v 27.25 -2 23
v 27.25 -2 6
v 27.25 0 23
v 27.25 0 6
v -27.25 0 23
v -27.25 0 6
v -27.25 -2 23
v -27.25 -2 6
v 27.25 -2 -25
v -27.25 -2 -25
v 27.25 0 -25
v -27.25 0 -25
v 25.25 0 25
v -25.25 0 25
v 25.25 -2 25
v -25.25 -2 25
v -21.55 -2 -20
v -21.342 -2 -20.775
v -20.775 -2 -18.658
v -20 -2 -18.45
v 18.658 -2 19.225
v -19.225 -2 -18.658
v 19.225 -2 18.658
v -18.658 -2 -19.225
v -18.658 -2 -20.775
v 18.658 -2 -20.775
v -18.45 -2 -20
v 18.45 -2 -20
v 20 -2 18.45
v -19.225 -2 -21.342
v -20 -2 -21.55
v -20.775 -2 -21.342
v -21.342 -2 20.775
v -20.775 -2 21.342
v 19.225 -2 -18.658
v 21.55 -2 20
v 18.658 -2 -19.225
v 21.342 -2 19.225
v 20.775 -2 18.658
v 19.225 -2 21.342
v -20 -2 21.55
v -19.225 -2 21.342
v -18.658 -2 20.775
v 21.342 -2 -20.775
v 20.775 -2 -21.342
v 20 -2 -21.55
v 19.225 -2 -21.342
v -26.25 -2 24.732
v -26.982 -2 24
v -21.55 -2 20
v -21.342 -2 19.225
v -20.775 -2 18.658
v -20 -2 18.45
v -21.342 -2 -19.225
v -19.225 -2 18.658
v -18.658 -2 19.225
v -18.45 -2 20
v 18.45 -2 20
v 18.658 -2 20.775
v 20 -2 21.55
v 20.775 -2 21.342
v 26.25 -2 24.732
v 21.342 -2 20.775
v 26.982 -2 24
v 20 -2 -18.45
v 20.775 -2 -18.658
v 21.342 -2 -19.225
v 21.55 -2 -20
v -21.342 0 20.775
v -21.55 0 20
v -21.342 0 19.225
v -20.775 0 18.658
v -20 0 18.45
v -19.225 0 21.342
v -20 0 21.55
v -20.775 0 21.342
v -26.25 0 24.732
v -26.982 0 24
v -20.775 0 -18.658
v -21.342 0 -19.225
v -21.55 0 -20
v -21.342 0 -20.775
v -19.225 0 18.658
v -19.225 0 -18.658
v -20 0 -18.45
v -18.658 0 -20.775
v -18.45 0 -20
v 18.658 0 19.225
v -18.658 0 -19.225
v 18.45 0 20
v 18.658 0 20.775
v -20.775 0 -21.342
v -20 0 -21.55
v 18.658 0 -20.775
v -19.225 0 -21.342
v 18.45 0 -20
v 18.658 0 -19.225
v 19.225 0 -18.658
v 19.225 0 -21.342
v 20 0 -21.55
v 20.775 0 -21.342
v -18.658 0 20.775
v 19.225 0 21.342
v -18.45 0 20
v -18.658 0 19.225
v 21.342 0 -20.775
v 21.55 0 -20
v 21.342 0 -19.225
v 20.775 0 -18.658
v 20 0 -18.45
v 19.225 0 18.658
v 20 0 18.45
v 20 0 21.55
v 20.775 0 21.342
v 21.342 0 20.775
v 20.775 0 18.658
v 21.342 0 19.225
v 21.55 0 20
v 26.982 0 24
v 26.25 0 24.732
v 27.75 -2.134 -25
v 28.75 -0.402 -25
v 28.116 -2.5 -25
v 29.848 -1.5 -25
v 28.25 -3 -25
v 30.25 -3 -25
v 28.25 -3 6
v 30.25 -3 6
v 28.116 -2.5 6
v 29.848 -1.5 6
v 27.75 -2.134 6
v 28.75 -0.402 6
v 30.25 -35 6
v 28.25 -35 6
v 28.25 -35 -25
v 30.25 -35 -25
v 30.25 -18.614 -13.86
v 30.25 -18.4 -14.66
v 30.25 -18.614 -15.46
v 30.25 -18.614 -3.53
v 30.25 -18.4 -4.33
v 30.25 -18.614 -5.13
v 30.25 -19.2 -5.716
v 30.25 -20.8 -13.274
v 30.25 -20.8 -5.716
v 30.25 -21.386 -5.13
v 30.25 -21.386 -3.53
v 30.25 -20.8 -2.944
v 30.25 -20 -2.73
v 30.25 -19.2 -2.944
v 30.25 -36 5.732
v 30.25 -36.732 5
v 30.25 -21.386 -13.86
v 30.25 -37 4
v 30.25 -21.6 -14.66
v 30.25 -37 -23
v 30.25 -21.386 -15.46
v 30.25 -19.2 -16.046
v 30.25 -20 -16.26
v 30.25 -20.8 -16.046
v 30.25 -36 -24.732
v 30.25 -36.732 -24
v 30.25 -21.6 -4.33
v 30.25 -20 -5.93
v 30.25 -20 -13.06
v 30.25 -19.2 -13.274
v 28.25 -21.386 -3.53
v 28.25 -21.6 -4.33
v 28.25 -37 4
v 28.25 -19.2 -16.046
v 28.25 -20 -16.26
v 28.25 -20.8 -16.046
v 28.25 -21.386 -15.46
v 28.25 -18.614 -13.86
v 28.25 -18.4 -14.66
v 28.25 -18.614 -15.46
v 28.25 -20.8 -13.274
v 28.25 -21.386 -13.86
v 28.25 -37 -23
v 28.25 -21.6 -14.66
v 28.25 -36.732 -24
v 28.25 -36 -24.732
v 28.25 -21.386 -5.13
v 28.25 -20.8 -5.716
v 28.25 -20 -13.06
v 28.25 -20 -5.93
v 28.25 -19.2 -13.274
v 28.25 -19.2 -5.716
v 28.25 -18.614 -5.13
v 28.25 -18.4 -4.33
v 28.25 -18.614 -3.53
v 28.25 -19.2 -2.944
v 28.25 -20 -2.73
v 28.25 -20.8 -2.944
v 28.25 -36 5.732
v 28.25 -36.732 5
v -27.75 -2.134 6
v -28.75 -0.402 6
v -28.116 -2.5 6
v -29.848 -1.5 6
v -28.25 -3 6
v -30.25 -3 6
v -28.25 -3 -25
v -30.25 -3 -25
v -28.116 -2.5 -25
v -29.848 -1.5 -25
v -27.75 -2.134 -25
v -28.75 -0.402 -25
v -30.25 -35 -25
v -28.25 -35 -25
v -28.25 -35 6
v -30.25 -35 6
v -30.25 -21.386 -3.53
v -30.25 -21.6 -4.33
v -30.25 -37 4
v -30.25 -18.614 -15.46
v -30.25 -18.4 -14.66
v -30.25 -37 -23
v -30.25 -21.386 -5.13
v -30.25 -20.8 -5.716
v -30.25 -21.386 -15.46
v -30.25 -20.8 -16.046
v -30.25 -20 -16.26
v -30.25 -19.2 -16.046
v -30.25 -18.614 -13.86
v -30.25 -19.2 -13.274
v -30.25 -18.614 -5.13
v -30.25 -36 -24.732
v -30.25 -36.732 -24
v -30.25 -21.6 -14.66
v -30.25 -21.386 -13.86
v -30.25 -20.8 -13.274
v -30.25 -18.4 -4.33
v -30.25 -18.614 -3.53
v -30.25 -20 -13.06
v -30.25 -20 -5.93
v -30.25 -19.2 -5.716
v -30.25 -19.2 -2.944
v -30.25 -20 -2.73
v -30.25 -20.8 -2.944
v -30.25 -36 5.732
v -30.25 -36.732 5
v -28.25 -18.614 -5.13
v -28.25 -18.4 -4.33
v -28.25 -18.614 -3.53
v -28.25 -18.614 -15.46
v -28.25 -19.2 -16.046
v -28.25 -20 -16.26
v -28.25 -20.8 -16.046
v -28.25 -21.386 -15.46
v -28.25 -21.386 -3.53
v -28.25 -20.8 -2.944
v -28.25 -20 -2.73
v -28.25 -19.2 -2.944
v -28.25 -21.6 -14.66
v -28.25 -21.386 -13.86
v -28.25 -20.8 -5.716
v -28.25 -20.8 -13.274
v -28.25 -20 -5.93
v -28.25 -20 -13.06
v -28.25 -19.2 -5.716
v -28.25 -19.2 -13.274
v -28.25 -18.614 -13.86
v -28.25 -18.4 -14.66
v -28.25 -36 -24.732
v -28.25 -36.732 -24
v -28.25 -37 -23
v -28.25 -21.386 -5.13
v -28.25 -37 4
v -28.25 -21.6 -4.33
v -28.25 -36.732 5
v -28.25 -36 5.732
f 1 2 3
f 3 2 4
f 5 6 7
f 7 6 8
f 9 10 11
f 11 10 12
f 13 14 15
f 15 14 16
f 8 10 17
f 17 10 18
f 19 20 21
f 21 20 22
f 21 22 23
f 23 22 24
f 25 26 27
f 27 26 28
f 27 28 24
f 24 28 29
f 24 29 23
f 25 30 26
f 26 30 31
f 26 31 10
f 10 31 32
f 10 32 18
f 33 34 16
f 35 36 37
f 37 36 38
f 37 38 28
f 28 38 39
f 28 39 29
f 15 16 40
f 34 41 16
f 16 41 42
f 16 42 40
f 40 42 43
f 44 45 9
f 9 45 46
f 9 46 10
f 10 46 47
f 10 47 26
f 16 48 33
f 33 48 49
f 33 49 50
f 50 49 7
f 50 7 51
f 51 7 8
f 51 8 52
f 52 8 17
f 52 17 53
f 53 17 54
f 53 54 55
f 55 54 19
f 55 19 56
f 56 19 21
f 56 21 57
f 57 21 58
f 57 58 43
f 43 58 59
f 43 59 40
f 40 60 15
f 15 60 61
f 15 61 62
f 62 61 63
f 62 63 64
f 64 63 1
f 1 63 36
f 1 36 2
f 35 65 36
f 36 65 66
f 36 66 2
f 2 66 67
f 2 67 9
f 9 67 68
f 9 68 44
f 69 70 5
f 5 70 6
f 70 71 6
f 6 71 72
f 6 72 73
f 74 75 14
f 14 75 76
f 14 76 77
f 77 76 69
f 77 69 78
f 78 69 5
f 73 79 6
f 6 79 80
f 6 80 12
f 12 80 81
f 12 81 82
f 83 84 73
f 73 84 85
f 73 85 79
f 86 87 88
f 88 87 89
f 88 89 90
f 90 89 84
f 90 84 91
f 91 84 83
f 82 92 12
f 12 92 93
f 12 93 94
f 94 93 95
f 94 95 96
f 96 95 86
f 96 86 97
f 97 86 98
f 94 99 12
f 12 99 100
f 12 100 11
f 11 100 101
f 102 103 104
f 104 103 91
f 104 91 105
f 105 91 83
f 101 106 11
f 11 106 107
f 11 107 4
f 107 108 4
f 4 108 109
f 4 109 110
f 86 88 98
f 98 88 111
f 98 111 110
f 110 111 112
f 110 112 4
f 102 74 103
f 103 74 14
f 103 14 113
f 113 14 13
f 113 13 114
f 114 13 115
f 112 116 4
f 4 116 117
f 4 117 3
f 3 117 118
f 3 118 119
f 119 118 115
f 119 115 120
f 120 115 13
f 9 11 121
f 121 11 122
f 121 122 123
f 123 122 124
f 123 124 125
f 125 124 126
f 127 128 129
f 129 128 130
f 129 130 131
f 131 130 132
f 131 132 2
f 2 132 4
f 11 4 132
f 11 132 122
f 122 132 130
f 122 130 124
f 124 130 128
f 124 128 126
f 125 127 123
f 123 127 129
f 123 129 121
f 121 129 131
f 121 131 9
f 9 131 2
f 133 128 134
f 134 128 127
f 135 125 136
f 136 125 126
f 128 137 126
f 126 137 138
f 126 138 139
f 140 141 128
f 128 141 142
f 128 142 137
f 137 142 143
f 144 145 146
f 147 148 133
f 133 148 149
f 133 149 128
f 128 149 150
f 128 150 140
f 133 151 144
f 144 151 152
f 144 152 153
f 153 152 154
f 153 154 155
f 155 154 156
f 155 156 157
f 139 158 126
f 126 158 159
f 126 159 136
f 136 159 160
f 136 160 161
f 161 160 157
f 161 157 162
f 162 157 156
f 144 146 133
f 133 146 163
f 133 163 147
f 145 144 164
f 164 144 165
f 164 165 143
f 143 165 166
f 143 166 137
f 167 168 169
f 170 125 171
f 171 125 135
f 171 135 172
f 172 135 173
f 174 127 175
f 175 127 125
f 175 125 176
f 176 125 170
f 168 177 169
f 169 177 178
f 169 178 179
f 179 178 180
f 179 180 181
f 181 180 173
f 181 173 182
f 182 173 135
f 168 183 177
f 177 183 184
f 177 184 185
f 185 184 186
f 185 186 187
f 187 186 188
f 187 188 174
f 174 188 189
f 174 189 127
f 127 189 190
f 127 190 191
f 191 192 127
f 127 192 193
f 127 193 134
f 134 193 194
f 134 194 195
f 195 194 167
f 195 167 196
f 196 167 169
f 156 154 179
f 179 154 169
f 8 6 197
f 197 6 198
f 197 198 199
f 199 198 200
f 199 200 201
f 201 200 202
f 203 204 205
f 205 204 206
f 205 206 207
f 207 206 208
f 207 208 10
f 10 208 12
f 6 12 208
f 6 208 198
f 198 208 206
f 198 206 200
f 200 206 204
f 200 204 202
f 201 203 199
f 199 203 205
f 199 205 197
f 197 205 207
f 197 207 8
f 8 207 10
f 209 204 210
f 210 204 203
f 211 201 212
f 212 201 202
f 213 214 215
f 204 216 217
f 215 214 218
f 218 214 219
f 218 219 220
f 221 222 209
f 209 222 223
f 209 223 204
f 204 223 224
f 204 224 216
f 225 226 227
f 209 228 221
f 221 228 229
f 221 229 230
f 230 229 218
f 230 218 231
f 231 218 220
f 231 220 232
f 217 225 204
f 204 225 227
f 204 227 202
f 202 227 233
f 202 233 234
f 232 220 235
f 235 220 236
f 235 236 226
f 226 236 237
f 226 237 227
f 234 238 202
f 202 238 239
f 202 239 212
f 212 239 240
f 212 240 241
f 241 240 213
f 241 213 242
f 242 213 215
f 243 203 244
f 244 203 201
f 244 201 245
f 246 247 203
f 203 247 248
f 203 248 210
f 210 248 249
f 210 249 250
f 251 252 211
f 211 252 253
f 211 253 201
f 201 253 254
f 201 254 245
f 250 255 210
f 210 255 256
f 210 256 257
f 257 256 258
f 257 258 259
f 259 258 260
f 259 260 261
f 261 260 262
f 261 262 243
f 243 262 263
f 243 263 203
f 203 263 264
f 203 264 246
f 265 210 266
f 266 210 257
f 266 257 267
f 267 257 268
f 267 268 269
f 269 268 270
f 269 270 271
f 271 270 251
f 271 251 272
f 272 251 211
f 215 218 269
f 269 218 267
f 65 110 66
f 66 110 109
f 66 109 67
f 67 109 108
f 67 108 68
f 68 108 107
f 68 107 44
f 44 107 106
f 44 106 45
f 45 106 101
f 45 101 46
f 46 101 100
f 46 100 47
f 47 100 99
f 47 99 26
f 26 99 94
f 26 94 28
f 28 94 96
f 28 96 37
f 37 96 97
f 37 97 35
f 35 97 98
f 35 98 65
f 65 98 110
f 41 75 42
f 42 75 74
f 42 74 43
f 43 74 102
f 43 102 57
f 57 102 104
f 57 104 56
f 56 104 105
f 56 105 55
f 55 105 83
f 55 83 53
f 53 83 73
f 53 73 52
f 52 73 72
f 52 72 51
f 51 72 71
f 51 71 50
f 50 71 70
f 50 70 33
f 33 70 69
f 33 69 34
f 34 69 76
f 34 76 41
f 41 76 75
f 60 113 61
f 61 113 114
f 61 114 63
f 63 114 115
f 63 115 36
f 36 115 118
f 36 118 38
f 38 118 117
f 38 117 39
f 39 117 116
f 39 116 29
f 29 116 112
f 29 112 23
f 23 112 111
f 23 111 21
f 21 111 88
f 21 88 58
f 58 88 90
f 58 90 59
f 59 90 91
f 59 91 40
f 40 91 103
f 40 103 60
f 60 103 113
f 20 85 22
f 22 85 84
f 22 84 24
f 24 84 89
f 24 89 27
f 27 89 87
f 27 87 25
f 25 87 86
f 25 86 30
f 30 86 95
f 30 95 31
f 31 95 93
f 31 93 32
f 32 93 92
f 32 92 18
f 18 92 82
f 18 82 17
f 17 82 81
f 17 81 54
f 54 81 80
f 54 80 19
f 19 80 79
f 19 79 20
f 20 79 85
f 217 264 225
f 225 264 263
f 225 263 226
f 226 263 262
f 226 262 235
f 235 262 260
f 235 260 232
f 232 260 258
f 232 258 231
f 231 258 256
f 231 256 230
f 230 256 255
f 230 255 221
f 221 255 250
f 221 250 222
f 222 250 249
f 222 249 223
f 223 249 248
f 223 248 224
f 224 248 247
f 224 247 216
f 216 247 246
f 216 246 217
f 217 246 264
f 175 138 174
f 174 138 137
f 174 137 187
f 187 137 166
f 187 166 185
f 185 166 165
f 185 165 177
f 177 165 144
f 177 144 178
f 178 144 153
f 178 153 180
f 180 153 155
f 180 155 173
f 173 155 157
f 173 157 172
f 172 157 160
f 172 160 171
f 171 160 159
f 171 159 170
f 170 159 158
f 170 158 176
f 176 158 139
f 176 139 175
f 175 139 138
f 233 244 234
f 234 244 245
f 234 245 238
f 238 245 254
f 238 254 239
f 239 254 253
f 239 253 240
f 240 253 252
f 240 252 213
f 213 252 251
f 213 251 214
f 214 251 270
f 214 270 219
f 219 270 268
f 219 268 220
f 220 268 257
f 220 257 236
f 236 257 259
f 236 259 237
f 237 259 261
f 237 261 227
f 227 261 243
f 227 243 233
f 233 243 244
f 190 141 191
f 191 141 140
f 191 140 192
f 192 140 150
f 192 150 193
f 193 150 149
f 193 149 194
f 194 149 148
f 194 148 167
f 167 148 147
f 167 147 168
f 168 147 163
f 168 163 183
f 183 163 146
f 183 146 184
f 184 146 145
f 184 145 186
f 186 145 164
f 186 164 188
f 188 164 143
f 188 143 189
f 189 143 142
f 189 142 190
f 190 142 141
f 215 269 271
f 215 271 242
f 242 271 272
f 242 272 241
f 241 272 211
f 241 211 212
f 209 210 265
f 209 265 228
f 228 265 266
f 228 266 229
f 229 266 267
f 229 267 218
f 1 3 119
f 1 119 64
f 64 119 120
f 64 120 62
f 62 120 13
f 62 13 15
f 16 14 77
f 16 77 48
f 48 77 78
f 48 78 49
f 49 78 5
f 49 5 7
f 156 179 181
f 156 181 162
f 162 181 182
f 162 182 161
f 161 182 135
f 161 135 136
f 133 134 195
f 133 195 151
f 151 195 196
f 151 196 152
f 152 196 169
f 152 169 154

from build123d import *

# Parameters (mm, degrees)
SKETCH1_W               = 54.5
SKETCH1_H               = 50
BASE_FLANGE1_DEPTH      = 2
EDGE_FLANGE1_DEPTH      = 31
EDGE_FLANGE1_BEND_DEPTH = 31
SKETCH12_R              = 1.55
CUT_EXTRUDE1_DEPTH      = 54.935725637
SKETCH13_R              = 1.6
CUT_EXTRUDE2_DEPTH      = 76.194747157
BREAK_CORNER1_START     = -30.25
BREAK_CORNER1_DEPTH     = 60.5
BREAK_CORNER1_START_2   = -2
BREAK_CORNER1_2_DEPTH   = 2


# Read off the part's stored shape, not the designer's step: Break-Corner1
# Sheet-metal steps are written as plain solids
with BuildPart() as part:
    # Sketch1 → Base-Flange1 (new body)
    with BuildSketch(Plane(origin=(0, 0, 0), x_dir=(1, 0, 0), z_dir=(0, 1, 0))):
        Rectangle(SKETCH1_W, SKETCH1_H)
    extrude(amount=-BASE_FLANGE1_DEPTH)

    # Edge-Flange1 section (across the edge) → Edge-Flange1 (add)
    with BuildSketch(Plane(origin=(28.25, -2, -25), x_dir=(-1, 0, 0), z_dir=(0, 0, 1))):
        with BuildLine():
            Line((-2, 1), (-2, 35))
            Line((-2, 35), (0, 35))
            Line((0, 35), (0, 1))
            ThreePointArc((0, 1), (0.292893219, 0.292893219), (1, 0))
            Line((1, 0), (1, -2))
            ThreePointArc((1, -2), (-1.121320344, -1.121320344), (-2, 1))
        make_face()
    extrude(amount=EDGE_FLANGE1_DEPTH)

    # Edge-Flange1 section 2 (across the edge) → Edge-Flange1 bend (add)
    with BuildSketch(Plane(origin=(-28.25, -2, 6), x_dir=(1, 0, 0), z_dir=(0, 0, -1))):
        with BuildLine():
            Line((-2, 1), (-2, 35))
            Line((-2, 35), (0, 35))
            Line((0, 35), (0, 1))
            ThreePointArc((0, 1), (0.292893219, 0.292893219), (1, 0))
            Line((1, 0), (1, -2))
            ThreePointArc((1, -2), (-1.121320344, -1.121320344), (-2, 1))
        make_face()
    extrude(amount=EDGE_FLANGE1_BEND_DEPTH)

    # Sketch12 → Cut-Extrude1 (cut, through all)
    with BuildSketch(Plane(origin=(0, 0, 0), x_dir=(1, 0, 0), z_dir=(0, 1, 0))):
        with Locations(Location((-20, 20, 0), (0, 0, 270))):
            Circle(SKETCH12_R)
        with Locations(Location((20, 20, 0), (0, 0, 270))):
            Circle(SKETCH12_R)
        with Locations(Location((20, -20, 0), (0, 0, 270))):
            Circle(SKETCH12_R)
        with Locations(Location((-20, -20, 0), (0, 0, 270))):
            Circle(SKETCH12_R)
    extrude(amount=-CUT_EXTRUDE1_DEPTH, mode=Mode.SUBTRACT)

    # Sketch13 → Cut-Extrude2 (cut, through all)
    with BuildSketch(Plane(origin=(30.25, 0, 0), x_dir=(0, 0, -1), z_dir=(1, 0, 0))):
        with Locations(Location((14.66, -20, 0), (0, 0, 90))):
            Circle(SKETCH13_R)
        with Locations(Location((4.33, -20, 0), (0, 0, 90))):
            Circle(SKETCH13_R)
    extrude(amount=-CUT_EXTRUDE2_DEPTH, mode=Mode.SUBTRACT)

    # Break-Corner1 outline → Break-Corner1 (cut)
    with BuildSketch(Plane.YZ.offset(BREAK_CORNER1_START)):
        with BuildLine():
            ThreePointArc((-35, -25), (-36.414213562, -24.414213562), (-37, -23))
            Line((-37, -23), (-37, -25))
            Line((-37, -25), (-35, -25))
        make_face()
        with BuildLine():
            ThreePointArc((-37, 4), (-36.414213562, 5.414213562), (-35, 6))
            Line((-35, 6), (-37, 6))
            Line((-37, 6), (-37, 4))
        make_face()
    extrude(amount=BREAK_CORNER1_DEPTH, mode=Mode.SUBTRACT)

    # Break-Corner1 2 outline → Break-Corner1 2 (cut)
    with BuildSketch(Plane(origin=(0, 0, 0), x_dir=(1, 0, 0), z_dir=(0, 1, 0)).offset(BREAK_CORNER1_START_2)):
        with BuildLine():
            Line((-27.25, -25), (-25.25, -25))
            ThreePointArc((-25.25, -25), (-26.664213562, -24.414213562), (-27.25, -23))
            Line((-27.25, -23), (-27.25, -25))
        make_face()
        with BuildLine():
            ThreePointArc((27.25, -23), (26.664213562, -24.414213562), (25.25, -25))
            Line((25.25, -25), (27.25, -25))
            Line((27.25, -25), (27.25, -23))
        make_face()
    extrude(amount=BREAK_CORNER1_2_DEPTH, mode=Mode.SUBTRACT)


solid = part.part
